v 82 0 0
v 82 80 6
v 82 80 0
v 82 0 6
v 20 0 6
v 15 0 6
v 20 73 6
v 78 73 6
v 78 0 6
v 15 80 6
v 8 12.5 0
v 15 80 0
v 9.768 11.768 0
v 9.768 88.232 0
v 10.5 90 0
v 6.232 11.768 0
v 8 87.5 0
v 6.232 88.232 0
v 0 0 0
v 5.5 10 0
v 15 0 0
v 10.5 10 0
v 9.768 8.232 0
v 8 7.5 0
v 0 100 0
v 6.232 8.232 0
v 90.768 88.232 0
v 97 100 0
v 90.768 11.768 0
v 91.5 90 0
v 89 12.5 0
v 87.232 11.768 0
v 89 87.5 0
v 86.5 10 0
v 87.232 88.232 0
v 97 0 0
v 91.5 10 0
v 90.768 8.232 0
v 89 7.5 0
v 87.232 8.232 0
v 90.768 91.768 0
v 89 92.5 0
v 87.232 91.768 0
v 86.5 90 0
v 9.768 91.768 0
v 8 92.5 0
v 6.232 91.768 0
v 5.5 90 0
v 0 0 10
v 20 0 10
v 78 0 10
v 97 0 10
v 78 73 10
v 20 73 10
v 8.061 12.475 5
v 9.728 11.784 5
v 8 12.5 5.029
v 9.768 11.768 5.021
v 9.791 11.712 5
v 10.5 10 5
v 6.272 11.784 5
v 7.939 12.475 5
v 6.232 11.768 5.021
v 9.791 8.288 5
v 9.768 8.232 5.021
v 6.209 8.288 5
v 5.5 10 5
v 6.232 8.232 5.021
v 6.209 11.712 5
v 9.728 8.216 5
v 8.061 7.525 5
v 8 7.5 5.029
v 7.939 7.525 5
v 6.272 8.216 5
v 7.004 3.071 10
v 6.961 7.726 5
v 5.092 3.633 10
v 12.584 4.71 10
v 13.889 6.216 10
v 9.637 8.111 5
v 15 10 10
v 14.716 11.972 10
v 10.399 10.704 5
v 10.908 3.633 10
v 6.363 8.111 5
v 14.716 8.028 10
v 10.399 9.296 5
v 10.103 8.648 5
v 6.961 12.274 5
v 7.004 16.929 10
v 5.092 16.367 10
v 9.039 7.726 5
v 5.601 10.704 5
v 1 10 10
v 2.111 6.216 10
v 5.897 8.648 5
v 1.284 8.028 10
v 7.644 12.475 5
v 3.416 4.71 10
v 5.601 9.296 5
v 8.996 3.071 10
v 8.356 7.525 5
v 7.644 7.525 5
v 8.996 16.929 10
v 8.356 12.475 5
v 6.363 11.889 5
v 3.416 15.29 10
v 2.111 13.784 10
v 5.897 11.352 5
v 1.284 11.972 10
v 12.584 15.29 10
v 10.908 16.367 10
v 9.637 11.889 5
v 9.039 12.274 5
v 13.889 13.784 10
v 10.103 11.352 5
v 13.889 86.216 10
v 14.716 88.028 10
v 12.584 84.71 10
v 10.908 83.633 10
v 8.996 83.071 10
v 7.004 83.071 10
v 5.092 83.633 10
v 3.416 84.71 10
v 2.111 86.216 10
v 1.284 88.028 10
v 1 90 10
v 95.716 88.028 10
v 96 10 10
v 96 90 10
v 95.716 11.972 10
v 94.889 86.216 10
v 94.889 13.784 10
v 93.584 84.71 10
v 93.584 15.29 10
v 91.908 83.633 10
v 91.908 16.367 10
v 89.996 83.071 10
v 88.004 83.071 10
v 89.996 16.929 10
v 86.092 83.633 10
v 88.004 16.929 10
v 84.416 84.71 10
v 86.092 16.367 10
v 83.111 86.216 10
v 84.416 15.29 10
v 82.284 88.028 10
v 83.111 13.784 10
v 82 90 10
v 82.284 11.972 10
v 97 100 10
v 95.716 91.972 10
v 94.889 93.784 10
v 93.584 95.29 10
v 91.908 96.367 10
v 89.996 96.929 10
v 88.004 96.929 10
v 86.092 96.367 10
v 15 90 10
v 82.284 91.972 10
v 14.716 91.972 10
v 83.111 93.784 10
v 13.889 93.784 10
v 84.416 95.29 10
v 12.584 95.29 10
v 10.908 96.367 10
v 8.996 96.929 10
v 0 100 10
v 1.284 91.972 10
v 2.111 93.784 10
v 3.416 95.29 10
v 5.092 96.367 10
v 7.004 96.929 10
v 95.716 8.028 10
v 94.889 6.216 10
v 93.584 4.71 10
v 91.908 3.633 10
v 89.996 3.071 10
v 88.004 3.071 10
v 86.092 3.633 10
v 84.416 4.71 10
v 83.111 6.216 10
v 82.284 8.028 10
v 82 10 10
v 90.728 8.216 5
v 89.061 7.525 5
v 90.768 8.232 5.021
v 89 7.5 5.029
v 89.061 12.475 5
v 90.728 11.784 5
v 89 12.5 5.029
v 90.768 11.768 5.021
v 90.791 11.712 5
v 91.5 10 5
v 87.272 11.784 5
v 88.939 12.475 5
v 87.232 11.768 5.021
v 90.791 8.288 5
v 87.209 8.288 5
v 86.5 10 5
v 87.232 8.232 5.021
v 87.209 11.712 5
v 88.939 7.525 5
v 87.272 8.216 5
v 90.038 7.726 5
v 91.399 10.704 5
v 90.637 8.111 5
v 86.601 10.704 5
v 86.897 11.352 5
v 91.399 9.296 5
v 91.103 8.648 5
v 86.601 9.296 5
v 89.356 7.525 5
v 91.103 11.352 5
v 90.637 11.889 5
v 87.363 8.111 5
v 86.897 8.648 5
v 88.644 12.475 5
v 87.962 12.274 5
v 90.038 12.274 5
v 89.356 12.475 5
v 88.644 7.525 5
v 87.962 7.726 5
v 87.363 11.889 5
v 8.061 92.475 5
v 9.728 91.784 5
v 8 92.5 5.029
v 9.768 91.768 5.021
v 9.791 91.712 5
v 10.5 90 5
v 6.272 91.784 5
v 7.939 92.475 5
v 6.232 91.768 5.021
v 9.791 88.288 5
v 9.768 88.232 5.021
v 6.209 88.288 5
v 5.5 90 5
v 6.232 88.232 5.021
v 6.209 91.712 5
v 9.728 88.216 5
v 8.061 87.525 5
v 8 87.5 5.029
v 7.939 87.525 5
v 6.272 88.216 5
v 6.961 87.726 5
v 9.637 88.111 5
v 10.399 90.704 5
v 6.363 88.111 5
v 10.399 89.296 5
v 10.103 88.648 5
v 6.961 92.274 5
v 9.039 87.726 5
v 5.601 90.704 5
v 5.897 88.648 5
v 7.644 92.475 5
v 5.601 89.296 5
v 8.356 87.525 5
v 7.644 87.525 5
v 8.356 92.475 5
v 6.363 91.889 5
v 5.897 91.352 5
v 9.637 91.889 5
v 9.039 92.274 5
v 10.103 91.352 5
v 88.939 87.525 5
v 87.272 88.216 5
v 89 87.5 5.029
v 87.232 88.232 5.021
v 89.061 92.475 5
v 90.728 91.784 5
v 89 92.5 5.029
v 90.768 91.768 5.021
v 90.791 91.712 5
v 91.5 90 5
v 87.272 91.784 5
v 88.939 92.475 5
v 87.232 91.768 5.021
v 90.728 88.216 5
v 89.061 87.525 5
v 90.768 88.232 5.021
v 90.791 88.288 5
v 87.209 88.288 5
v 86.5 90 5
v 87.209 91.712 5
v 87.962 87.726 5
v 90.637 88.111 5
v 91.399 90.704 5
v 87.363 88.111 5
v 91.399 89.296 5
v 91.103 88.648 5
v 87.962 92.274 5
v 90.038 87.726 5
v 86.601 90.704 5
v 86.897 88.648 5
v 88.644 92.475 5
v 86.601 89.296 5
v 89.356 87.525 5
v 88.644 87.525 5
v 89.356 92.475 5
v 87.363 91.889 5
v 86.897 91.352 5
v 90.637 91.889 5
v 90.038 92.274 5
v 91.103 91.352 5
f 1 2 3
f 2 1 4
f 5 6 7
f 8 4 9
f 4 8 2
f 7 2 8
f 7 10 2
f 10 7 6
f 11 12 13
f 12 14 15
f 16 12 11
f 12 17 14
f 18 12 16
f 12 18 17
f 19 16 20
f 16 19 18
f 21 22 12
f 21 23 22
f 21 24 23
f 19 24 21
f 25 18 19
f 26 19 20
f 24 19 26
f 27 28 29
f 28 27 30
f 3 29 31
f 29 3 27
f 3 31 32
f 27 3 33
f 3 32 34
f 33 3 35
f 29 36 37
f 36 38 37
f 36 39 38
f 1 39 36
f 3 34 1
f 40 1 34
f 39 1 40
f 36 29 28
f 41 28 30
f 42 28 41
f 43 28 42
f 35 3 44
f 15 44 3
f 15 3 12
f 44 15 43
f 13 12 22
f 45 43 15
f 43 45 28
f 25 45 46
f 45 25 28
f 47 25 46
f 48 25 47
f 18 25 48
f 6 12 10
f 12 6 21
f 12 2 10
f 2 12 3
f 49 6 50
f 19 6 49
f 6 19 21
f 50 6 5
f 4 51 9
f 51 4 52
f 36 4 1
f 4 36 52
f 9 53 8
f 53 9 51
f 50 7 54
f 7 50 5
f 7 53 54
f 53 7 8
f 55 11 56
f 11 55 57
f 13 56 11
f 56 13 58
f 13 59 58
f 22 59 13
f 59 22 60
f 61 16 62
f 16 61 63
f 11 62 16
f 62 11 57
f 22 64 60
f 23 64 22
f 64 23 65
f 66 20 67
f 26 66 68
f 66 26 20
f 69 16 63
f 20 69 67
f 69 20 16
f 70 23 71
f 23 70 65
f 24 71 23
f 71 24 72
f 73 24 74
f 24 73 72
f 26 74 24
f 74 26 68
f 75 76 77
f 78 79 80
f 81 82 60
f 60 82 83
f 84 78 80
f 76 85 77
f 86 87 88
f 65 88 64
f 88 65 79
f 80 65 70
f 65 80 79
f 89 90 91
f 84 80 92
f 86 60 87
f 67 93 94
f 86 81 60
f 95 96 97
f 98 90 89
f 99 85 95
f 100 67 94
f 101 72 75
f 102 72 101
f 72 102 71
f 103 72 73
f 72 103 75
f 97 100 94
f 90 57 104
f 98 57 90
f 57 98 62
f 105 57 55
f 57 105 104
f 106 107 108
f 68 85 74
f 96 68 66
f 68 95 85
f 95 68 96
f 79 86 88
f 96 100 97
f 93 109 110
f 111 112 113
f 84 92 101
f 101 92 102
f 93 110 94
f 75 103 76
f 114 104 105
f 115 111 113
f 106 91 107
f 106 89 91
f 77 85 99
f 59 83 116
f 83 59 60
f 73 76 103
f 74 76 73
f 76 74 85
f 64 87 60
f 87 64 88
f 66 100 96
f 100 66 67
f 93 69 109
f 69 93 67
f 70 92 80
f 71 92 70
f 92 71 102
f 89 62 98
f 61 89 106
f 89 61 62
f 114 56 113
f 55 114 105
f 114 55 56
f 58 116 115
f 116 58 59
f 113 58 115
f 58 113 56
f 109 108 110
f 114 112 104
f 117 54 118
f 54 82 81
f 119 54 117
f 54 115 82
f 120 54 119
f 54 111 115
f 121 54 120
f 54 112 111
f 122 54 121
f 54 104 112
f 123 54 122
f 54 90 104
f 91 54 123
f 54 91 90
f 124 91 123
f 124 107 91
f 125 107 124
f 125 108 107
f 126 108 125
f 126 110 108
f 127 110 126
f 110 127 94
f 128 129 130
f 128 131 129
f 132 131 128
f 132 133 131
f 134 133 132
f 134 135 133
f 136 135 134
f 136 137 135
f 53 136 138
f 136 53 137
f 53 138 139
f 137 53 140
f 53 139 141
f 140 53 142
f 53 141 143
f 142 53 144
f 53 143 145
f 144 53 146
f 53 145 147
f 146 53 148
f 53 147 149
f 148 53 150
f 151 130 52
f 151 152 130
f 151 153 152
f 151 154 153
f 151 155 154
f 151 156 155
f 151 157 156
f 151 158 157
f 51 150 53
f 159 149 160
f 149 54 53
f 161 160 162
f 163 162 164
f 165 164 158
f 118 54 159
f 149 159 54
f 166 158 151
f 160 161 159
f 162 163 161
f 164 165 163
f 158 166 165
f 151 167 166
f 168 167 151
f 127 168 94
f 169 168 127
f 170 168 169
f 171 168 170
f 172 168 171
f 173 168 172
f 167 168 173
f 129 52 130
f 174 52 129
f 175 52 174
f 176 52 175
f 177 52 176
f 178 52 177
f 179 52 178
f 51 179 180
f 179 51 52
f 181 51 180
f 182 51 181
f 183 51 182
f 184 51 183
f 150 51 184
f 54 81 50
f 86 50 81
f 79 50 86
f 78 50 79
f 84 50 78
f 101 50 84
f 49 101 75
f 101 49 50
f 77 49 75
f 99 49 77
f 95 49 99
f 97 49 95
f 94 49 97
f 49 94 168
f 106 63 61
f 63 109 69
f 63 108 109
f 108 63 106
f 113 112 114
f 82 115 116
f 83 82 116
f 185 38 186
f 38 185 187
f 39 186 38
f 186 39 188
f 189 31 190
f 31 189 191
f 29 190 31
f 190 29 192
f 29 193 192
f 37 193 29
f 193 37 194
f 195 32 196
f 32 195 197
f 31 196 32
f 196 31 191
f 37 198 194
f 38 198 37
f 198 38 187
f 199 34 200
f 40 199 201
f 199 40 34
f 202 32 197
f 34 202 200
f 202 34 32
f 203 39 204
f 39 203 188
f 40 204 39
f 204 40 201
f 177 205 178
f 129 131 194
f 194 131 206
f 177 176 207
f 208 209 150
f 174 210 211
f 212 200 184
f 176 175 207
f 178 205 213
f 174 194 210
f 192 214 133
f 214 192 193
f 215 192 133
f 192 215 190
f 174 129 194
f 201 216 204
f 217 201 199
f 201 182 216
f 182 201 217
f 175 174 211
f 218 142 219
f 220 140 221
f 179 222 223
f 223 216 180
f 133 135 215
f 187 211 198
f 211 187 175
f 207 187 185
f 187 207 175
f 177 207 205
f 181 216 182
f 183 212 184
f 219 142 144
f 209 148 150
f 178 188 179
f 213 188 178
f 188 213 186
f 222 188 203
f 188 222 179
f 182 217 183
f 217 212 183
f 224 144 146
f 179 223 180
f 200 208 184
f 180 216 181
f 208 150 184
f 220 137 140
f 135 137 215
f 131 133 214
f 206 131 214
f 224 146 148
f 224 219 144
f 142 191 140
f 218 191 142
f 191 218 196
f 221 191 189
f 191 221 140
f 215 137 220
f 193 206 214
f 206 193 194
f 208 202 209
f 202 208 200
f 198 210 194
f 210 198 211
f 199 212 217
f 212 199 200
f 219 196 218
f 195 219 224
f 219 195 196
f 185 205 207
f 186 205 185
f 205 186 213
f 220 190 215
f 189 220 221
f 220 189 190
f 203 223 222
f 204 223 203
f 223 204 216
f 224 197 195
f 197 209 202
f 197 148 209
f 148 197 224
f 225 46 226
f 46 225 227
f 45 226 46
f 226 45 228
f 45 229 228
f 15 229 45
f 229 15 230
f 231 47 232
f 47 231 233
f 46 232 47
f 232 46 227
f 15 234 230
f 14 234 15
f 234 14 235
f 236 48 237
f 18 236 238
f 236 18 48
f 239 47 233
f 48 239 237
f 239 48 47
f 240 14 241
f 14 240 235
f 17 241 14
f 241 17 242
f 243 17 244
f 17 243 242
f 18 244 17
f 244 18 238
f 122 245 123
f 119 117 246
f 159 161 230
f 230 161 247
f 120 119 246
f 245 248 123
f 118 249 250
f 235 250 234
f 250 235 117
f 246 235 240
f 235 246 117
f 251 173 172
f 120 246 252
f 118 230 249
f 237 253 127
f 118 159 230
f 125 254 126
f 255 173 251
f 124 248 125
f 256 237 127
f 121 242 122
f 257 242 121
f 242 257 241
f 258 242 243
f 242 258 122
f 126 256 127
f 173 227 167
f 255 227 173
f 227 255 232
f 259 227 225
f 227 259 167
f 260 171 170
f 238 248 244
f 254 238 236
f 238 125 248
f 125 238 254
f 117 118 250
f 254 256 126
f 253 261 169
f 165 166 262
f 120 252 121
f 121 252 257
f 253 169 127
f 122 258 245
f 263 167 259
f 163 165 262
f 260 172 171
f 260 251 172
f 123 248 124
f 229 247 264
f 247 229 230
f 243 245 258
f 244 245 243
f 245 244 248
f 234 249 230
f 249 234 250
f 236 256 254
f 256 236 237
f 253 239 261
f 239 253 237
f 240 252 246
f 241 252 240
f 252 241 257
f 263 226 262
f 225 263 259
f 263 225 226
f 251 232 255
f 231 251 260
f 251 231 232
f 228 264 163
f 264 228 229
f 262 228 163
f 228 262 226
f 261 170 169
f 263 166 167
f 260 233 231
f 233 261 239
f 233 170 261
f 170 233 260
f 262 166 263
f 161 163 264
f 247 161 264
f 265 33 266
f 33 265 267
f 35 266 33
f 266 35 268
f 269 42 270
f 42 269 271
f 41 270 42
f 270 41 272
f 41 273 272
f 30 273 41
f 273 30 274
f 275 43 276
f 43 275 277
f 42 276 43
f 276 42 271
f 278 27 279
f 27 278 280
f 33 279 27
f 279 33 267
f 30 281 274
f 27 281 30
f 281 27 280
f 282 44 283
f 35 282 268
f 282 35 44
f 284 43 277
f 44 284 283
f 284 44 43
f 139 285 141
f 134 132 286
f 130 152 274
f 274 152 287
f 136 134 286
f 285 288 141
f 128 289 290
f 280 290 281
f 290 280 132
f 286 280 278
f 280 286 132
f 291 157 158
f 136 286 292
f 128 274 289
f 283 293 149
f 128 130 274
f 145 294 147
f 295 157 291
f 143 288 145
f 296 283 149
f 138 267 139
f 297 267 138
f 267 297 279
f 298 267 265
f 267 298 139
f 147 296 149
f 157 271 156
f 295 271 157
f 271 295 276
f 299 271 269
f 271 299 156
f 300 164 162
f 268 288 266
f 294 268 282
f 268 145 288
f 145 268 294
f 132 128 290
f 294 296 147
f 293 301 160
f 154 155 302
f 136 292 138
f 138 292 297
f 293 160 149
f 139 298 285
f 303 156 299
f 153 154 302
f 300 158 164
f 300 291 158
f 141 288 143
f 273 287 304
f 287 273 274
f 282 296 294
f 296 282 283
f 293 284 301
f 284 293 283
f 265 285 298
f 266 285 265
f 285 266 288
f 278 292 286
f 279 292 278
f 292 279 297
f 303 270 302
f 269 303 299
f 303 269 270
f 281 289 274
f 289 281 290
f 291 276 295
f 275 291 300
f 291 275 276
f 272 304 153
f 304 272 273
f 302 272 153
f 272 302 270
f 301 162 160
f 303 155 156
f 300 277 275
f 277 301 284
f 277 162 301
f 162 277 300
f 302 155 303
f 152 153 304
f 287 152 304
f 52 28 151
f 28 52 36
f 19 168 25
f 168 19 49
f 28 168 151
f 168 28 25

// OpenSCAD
echo(version=version());

// simple 2D -> 3D extrusion of a rectangle
color("red")
    translate([0, 0, 0])
      difference() {
        cube(size = [97,100,10], center = false);
        union() {
          translate([15,0,0]) {
           // The lip
           cube(size = [67,80,6], center = false);
          }
           // The thing
          translate([20,0,0]) {
           cube(size = [58,73,120], center = false);
          }
          // screww holes
          translate([8,10,0])  { cylinder(h=20, r=2.5, center=false); }
          translate([8,10,5])  { cylinder(h=5, r1=2.5, r2=7, center=false); }
          translate([89,10,0]) { cylinder(h=20, r=2.5, center=false); }
          translate([89,10,5]) { cylinder(h=5, r1=2.5, r2=7, center=false); }

          translate([8,90,0])  { cylinder(h=20, r=2.5, center=false); }
          translate([8,90,5])  { cylinder(h=5, r1=2.5, r2=7, center=false); }

          translate([89,90,0]) { cylinder(h=20, r=2.5, center=false); }
          translate([89,90,5]) { cylinder(h=5, r1=2.5, r2=7, center=false); }
        }
    }
